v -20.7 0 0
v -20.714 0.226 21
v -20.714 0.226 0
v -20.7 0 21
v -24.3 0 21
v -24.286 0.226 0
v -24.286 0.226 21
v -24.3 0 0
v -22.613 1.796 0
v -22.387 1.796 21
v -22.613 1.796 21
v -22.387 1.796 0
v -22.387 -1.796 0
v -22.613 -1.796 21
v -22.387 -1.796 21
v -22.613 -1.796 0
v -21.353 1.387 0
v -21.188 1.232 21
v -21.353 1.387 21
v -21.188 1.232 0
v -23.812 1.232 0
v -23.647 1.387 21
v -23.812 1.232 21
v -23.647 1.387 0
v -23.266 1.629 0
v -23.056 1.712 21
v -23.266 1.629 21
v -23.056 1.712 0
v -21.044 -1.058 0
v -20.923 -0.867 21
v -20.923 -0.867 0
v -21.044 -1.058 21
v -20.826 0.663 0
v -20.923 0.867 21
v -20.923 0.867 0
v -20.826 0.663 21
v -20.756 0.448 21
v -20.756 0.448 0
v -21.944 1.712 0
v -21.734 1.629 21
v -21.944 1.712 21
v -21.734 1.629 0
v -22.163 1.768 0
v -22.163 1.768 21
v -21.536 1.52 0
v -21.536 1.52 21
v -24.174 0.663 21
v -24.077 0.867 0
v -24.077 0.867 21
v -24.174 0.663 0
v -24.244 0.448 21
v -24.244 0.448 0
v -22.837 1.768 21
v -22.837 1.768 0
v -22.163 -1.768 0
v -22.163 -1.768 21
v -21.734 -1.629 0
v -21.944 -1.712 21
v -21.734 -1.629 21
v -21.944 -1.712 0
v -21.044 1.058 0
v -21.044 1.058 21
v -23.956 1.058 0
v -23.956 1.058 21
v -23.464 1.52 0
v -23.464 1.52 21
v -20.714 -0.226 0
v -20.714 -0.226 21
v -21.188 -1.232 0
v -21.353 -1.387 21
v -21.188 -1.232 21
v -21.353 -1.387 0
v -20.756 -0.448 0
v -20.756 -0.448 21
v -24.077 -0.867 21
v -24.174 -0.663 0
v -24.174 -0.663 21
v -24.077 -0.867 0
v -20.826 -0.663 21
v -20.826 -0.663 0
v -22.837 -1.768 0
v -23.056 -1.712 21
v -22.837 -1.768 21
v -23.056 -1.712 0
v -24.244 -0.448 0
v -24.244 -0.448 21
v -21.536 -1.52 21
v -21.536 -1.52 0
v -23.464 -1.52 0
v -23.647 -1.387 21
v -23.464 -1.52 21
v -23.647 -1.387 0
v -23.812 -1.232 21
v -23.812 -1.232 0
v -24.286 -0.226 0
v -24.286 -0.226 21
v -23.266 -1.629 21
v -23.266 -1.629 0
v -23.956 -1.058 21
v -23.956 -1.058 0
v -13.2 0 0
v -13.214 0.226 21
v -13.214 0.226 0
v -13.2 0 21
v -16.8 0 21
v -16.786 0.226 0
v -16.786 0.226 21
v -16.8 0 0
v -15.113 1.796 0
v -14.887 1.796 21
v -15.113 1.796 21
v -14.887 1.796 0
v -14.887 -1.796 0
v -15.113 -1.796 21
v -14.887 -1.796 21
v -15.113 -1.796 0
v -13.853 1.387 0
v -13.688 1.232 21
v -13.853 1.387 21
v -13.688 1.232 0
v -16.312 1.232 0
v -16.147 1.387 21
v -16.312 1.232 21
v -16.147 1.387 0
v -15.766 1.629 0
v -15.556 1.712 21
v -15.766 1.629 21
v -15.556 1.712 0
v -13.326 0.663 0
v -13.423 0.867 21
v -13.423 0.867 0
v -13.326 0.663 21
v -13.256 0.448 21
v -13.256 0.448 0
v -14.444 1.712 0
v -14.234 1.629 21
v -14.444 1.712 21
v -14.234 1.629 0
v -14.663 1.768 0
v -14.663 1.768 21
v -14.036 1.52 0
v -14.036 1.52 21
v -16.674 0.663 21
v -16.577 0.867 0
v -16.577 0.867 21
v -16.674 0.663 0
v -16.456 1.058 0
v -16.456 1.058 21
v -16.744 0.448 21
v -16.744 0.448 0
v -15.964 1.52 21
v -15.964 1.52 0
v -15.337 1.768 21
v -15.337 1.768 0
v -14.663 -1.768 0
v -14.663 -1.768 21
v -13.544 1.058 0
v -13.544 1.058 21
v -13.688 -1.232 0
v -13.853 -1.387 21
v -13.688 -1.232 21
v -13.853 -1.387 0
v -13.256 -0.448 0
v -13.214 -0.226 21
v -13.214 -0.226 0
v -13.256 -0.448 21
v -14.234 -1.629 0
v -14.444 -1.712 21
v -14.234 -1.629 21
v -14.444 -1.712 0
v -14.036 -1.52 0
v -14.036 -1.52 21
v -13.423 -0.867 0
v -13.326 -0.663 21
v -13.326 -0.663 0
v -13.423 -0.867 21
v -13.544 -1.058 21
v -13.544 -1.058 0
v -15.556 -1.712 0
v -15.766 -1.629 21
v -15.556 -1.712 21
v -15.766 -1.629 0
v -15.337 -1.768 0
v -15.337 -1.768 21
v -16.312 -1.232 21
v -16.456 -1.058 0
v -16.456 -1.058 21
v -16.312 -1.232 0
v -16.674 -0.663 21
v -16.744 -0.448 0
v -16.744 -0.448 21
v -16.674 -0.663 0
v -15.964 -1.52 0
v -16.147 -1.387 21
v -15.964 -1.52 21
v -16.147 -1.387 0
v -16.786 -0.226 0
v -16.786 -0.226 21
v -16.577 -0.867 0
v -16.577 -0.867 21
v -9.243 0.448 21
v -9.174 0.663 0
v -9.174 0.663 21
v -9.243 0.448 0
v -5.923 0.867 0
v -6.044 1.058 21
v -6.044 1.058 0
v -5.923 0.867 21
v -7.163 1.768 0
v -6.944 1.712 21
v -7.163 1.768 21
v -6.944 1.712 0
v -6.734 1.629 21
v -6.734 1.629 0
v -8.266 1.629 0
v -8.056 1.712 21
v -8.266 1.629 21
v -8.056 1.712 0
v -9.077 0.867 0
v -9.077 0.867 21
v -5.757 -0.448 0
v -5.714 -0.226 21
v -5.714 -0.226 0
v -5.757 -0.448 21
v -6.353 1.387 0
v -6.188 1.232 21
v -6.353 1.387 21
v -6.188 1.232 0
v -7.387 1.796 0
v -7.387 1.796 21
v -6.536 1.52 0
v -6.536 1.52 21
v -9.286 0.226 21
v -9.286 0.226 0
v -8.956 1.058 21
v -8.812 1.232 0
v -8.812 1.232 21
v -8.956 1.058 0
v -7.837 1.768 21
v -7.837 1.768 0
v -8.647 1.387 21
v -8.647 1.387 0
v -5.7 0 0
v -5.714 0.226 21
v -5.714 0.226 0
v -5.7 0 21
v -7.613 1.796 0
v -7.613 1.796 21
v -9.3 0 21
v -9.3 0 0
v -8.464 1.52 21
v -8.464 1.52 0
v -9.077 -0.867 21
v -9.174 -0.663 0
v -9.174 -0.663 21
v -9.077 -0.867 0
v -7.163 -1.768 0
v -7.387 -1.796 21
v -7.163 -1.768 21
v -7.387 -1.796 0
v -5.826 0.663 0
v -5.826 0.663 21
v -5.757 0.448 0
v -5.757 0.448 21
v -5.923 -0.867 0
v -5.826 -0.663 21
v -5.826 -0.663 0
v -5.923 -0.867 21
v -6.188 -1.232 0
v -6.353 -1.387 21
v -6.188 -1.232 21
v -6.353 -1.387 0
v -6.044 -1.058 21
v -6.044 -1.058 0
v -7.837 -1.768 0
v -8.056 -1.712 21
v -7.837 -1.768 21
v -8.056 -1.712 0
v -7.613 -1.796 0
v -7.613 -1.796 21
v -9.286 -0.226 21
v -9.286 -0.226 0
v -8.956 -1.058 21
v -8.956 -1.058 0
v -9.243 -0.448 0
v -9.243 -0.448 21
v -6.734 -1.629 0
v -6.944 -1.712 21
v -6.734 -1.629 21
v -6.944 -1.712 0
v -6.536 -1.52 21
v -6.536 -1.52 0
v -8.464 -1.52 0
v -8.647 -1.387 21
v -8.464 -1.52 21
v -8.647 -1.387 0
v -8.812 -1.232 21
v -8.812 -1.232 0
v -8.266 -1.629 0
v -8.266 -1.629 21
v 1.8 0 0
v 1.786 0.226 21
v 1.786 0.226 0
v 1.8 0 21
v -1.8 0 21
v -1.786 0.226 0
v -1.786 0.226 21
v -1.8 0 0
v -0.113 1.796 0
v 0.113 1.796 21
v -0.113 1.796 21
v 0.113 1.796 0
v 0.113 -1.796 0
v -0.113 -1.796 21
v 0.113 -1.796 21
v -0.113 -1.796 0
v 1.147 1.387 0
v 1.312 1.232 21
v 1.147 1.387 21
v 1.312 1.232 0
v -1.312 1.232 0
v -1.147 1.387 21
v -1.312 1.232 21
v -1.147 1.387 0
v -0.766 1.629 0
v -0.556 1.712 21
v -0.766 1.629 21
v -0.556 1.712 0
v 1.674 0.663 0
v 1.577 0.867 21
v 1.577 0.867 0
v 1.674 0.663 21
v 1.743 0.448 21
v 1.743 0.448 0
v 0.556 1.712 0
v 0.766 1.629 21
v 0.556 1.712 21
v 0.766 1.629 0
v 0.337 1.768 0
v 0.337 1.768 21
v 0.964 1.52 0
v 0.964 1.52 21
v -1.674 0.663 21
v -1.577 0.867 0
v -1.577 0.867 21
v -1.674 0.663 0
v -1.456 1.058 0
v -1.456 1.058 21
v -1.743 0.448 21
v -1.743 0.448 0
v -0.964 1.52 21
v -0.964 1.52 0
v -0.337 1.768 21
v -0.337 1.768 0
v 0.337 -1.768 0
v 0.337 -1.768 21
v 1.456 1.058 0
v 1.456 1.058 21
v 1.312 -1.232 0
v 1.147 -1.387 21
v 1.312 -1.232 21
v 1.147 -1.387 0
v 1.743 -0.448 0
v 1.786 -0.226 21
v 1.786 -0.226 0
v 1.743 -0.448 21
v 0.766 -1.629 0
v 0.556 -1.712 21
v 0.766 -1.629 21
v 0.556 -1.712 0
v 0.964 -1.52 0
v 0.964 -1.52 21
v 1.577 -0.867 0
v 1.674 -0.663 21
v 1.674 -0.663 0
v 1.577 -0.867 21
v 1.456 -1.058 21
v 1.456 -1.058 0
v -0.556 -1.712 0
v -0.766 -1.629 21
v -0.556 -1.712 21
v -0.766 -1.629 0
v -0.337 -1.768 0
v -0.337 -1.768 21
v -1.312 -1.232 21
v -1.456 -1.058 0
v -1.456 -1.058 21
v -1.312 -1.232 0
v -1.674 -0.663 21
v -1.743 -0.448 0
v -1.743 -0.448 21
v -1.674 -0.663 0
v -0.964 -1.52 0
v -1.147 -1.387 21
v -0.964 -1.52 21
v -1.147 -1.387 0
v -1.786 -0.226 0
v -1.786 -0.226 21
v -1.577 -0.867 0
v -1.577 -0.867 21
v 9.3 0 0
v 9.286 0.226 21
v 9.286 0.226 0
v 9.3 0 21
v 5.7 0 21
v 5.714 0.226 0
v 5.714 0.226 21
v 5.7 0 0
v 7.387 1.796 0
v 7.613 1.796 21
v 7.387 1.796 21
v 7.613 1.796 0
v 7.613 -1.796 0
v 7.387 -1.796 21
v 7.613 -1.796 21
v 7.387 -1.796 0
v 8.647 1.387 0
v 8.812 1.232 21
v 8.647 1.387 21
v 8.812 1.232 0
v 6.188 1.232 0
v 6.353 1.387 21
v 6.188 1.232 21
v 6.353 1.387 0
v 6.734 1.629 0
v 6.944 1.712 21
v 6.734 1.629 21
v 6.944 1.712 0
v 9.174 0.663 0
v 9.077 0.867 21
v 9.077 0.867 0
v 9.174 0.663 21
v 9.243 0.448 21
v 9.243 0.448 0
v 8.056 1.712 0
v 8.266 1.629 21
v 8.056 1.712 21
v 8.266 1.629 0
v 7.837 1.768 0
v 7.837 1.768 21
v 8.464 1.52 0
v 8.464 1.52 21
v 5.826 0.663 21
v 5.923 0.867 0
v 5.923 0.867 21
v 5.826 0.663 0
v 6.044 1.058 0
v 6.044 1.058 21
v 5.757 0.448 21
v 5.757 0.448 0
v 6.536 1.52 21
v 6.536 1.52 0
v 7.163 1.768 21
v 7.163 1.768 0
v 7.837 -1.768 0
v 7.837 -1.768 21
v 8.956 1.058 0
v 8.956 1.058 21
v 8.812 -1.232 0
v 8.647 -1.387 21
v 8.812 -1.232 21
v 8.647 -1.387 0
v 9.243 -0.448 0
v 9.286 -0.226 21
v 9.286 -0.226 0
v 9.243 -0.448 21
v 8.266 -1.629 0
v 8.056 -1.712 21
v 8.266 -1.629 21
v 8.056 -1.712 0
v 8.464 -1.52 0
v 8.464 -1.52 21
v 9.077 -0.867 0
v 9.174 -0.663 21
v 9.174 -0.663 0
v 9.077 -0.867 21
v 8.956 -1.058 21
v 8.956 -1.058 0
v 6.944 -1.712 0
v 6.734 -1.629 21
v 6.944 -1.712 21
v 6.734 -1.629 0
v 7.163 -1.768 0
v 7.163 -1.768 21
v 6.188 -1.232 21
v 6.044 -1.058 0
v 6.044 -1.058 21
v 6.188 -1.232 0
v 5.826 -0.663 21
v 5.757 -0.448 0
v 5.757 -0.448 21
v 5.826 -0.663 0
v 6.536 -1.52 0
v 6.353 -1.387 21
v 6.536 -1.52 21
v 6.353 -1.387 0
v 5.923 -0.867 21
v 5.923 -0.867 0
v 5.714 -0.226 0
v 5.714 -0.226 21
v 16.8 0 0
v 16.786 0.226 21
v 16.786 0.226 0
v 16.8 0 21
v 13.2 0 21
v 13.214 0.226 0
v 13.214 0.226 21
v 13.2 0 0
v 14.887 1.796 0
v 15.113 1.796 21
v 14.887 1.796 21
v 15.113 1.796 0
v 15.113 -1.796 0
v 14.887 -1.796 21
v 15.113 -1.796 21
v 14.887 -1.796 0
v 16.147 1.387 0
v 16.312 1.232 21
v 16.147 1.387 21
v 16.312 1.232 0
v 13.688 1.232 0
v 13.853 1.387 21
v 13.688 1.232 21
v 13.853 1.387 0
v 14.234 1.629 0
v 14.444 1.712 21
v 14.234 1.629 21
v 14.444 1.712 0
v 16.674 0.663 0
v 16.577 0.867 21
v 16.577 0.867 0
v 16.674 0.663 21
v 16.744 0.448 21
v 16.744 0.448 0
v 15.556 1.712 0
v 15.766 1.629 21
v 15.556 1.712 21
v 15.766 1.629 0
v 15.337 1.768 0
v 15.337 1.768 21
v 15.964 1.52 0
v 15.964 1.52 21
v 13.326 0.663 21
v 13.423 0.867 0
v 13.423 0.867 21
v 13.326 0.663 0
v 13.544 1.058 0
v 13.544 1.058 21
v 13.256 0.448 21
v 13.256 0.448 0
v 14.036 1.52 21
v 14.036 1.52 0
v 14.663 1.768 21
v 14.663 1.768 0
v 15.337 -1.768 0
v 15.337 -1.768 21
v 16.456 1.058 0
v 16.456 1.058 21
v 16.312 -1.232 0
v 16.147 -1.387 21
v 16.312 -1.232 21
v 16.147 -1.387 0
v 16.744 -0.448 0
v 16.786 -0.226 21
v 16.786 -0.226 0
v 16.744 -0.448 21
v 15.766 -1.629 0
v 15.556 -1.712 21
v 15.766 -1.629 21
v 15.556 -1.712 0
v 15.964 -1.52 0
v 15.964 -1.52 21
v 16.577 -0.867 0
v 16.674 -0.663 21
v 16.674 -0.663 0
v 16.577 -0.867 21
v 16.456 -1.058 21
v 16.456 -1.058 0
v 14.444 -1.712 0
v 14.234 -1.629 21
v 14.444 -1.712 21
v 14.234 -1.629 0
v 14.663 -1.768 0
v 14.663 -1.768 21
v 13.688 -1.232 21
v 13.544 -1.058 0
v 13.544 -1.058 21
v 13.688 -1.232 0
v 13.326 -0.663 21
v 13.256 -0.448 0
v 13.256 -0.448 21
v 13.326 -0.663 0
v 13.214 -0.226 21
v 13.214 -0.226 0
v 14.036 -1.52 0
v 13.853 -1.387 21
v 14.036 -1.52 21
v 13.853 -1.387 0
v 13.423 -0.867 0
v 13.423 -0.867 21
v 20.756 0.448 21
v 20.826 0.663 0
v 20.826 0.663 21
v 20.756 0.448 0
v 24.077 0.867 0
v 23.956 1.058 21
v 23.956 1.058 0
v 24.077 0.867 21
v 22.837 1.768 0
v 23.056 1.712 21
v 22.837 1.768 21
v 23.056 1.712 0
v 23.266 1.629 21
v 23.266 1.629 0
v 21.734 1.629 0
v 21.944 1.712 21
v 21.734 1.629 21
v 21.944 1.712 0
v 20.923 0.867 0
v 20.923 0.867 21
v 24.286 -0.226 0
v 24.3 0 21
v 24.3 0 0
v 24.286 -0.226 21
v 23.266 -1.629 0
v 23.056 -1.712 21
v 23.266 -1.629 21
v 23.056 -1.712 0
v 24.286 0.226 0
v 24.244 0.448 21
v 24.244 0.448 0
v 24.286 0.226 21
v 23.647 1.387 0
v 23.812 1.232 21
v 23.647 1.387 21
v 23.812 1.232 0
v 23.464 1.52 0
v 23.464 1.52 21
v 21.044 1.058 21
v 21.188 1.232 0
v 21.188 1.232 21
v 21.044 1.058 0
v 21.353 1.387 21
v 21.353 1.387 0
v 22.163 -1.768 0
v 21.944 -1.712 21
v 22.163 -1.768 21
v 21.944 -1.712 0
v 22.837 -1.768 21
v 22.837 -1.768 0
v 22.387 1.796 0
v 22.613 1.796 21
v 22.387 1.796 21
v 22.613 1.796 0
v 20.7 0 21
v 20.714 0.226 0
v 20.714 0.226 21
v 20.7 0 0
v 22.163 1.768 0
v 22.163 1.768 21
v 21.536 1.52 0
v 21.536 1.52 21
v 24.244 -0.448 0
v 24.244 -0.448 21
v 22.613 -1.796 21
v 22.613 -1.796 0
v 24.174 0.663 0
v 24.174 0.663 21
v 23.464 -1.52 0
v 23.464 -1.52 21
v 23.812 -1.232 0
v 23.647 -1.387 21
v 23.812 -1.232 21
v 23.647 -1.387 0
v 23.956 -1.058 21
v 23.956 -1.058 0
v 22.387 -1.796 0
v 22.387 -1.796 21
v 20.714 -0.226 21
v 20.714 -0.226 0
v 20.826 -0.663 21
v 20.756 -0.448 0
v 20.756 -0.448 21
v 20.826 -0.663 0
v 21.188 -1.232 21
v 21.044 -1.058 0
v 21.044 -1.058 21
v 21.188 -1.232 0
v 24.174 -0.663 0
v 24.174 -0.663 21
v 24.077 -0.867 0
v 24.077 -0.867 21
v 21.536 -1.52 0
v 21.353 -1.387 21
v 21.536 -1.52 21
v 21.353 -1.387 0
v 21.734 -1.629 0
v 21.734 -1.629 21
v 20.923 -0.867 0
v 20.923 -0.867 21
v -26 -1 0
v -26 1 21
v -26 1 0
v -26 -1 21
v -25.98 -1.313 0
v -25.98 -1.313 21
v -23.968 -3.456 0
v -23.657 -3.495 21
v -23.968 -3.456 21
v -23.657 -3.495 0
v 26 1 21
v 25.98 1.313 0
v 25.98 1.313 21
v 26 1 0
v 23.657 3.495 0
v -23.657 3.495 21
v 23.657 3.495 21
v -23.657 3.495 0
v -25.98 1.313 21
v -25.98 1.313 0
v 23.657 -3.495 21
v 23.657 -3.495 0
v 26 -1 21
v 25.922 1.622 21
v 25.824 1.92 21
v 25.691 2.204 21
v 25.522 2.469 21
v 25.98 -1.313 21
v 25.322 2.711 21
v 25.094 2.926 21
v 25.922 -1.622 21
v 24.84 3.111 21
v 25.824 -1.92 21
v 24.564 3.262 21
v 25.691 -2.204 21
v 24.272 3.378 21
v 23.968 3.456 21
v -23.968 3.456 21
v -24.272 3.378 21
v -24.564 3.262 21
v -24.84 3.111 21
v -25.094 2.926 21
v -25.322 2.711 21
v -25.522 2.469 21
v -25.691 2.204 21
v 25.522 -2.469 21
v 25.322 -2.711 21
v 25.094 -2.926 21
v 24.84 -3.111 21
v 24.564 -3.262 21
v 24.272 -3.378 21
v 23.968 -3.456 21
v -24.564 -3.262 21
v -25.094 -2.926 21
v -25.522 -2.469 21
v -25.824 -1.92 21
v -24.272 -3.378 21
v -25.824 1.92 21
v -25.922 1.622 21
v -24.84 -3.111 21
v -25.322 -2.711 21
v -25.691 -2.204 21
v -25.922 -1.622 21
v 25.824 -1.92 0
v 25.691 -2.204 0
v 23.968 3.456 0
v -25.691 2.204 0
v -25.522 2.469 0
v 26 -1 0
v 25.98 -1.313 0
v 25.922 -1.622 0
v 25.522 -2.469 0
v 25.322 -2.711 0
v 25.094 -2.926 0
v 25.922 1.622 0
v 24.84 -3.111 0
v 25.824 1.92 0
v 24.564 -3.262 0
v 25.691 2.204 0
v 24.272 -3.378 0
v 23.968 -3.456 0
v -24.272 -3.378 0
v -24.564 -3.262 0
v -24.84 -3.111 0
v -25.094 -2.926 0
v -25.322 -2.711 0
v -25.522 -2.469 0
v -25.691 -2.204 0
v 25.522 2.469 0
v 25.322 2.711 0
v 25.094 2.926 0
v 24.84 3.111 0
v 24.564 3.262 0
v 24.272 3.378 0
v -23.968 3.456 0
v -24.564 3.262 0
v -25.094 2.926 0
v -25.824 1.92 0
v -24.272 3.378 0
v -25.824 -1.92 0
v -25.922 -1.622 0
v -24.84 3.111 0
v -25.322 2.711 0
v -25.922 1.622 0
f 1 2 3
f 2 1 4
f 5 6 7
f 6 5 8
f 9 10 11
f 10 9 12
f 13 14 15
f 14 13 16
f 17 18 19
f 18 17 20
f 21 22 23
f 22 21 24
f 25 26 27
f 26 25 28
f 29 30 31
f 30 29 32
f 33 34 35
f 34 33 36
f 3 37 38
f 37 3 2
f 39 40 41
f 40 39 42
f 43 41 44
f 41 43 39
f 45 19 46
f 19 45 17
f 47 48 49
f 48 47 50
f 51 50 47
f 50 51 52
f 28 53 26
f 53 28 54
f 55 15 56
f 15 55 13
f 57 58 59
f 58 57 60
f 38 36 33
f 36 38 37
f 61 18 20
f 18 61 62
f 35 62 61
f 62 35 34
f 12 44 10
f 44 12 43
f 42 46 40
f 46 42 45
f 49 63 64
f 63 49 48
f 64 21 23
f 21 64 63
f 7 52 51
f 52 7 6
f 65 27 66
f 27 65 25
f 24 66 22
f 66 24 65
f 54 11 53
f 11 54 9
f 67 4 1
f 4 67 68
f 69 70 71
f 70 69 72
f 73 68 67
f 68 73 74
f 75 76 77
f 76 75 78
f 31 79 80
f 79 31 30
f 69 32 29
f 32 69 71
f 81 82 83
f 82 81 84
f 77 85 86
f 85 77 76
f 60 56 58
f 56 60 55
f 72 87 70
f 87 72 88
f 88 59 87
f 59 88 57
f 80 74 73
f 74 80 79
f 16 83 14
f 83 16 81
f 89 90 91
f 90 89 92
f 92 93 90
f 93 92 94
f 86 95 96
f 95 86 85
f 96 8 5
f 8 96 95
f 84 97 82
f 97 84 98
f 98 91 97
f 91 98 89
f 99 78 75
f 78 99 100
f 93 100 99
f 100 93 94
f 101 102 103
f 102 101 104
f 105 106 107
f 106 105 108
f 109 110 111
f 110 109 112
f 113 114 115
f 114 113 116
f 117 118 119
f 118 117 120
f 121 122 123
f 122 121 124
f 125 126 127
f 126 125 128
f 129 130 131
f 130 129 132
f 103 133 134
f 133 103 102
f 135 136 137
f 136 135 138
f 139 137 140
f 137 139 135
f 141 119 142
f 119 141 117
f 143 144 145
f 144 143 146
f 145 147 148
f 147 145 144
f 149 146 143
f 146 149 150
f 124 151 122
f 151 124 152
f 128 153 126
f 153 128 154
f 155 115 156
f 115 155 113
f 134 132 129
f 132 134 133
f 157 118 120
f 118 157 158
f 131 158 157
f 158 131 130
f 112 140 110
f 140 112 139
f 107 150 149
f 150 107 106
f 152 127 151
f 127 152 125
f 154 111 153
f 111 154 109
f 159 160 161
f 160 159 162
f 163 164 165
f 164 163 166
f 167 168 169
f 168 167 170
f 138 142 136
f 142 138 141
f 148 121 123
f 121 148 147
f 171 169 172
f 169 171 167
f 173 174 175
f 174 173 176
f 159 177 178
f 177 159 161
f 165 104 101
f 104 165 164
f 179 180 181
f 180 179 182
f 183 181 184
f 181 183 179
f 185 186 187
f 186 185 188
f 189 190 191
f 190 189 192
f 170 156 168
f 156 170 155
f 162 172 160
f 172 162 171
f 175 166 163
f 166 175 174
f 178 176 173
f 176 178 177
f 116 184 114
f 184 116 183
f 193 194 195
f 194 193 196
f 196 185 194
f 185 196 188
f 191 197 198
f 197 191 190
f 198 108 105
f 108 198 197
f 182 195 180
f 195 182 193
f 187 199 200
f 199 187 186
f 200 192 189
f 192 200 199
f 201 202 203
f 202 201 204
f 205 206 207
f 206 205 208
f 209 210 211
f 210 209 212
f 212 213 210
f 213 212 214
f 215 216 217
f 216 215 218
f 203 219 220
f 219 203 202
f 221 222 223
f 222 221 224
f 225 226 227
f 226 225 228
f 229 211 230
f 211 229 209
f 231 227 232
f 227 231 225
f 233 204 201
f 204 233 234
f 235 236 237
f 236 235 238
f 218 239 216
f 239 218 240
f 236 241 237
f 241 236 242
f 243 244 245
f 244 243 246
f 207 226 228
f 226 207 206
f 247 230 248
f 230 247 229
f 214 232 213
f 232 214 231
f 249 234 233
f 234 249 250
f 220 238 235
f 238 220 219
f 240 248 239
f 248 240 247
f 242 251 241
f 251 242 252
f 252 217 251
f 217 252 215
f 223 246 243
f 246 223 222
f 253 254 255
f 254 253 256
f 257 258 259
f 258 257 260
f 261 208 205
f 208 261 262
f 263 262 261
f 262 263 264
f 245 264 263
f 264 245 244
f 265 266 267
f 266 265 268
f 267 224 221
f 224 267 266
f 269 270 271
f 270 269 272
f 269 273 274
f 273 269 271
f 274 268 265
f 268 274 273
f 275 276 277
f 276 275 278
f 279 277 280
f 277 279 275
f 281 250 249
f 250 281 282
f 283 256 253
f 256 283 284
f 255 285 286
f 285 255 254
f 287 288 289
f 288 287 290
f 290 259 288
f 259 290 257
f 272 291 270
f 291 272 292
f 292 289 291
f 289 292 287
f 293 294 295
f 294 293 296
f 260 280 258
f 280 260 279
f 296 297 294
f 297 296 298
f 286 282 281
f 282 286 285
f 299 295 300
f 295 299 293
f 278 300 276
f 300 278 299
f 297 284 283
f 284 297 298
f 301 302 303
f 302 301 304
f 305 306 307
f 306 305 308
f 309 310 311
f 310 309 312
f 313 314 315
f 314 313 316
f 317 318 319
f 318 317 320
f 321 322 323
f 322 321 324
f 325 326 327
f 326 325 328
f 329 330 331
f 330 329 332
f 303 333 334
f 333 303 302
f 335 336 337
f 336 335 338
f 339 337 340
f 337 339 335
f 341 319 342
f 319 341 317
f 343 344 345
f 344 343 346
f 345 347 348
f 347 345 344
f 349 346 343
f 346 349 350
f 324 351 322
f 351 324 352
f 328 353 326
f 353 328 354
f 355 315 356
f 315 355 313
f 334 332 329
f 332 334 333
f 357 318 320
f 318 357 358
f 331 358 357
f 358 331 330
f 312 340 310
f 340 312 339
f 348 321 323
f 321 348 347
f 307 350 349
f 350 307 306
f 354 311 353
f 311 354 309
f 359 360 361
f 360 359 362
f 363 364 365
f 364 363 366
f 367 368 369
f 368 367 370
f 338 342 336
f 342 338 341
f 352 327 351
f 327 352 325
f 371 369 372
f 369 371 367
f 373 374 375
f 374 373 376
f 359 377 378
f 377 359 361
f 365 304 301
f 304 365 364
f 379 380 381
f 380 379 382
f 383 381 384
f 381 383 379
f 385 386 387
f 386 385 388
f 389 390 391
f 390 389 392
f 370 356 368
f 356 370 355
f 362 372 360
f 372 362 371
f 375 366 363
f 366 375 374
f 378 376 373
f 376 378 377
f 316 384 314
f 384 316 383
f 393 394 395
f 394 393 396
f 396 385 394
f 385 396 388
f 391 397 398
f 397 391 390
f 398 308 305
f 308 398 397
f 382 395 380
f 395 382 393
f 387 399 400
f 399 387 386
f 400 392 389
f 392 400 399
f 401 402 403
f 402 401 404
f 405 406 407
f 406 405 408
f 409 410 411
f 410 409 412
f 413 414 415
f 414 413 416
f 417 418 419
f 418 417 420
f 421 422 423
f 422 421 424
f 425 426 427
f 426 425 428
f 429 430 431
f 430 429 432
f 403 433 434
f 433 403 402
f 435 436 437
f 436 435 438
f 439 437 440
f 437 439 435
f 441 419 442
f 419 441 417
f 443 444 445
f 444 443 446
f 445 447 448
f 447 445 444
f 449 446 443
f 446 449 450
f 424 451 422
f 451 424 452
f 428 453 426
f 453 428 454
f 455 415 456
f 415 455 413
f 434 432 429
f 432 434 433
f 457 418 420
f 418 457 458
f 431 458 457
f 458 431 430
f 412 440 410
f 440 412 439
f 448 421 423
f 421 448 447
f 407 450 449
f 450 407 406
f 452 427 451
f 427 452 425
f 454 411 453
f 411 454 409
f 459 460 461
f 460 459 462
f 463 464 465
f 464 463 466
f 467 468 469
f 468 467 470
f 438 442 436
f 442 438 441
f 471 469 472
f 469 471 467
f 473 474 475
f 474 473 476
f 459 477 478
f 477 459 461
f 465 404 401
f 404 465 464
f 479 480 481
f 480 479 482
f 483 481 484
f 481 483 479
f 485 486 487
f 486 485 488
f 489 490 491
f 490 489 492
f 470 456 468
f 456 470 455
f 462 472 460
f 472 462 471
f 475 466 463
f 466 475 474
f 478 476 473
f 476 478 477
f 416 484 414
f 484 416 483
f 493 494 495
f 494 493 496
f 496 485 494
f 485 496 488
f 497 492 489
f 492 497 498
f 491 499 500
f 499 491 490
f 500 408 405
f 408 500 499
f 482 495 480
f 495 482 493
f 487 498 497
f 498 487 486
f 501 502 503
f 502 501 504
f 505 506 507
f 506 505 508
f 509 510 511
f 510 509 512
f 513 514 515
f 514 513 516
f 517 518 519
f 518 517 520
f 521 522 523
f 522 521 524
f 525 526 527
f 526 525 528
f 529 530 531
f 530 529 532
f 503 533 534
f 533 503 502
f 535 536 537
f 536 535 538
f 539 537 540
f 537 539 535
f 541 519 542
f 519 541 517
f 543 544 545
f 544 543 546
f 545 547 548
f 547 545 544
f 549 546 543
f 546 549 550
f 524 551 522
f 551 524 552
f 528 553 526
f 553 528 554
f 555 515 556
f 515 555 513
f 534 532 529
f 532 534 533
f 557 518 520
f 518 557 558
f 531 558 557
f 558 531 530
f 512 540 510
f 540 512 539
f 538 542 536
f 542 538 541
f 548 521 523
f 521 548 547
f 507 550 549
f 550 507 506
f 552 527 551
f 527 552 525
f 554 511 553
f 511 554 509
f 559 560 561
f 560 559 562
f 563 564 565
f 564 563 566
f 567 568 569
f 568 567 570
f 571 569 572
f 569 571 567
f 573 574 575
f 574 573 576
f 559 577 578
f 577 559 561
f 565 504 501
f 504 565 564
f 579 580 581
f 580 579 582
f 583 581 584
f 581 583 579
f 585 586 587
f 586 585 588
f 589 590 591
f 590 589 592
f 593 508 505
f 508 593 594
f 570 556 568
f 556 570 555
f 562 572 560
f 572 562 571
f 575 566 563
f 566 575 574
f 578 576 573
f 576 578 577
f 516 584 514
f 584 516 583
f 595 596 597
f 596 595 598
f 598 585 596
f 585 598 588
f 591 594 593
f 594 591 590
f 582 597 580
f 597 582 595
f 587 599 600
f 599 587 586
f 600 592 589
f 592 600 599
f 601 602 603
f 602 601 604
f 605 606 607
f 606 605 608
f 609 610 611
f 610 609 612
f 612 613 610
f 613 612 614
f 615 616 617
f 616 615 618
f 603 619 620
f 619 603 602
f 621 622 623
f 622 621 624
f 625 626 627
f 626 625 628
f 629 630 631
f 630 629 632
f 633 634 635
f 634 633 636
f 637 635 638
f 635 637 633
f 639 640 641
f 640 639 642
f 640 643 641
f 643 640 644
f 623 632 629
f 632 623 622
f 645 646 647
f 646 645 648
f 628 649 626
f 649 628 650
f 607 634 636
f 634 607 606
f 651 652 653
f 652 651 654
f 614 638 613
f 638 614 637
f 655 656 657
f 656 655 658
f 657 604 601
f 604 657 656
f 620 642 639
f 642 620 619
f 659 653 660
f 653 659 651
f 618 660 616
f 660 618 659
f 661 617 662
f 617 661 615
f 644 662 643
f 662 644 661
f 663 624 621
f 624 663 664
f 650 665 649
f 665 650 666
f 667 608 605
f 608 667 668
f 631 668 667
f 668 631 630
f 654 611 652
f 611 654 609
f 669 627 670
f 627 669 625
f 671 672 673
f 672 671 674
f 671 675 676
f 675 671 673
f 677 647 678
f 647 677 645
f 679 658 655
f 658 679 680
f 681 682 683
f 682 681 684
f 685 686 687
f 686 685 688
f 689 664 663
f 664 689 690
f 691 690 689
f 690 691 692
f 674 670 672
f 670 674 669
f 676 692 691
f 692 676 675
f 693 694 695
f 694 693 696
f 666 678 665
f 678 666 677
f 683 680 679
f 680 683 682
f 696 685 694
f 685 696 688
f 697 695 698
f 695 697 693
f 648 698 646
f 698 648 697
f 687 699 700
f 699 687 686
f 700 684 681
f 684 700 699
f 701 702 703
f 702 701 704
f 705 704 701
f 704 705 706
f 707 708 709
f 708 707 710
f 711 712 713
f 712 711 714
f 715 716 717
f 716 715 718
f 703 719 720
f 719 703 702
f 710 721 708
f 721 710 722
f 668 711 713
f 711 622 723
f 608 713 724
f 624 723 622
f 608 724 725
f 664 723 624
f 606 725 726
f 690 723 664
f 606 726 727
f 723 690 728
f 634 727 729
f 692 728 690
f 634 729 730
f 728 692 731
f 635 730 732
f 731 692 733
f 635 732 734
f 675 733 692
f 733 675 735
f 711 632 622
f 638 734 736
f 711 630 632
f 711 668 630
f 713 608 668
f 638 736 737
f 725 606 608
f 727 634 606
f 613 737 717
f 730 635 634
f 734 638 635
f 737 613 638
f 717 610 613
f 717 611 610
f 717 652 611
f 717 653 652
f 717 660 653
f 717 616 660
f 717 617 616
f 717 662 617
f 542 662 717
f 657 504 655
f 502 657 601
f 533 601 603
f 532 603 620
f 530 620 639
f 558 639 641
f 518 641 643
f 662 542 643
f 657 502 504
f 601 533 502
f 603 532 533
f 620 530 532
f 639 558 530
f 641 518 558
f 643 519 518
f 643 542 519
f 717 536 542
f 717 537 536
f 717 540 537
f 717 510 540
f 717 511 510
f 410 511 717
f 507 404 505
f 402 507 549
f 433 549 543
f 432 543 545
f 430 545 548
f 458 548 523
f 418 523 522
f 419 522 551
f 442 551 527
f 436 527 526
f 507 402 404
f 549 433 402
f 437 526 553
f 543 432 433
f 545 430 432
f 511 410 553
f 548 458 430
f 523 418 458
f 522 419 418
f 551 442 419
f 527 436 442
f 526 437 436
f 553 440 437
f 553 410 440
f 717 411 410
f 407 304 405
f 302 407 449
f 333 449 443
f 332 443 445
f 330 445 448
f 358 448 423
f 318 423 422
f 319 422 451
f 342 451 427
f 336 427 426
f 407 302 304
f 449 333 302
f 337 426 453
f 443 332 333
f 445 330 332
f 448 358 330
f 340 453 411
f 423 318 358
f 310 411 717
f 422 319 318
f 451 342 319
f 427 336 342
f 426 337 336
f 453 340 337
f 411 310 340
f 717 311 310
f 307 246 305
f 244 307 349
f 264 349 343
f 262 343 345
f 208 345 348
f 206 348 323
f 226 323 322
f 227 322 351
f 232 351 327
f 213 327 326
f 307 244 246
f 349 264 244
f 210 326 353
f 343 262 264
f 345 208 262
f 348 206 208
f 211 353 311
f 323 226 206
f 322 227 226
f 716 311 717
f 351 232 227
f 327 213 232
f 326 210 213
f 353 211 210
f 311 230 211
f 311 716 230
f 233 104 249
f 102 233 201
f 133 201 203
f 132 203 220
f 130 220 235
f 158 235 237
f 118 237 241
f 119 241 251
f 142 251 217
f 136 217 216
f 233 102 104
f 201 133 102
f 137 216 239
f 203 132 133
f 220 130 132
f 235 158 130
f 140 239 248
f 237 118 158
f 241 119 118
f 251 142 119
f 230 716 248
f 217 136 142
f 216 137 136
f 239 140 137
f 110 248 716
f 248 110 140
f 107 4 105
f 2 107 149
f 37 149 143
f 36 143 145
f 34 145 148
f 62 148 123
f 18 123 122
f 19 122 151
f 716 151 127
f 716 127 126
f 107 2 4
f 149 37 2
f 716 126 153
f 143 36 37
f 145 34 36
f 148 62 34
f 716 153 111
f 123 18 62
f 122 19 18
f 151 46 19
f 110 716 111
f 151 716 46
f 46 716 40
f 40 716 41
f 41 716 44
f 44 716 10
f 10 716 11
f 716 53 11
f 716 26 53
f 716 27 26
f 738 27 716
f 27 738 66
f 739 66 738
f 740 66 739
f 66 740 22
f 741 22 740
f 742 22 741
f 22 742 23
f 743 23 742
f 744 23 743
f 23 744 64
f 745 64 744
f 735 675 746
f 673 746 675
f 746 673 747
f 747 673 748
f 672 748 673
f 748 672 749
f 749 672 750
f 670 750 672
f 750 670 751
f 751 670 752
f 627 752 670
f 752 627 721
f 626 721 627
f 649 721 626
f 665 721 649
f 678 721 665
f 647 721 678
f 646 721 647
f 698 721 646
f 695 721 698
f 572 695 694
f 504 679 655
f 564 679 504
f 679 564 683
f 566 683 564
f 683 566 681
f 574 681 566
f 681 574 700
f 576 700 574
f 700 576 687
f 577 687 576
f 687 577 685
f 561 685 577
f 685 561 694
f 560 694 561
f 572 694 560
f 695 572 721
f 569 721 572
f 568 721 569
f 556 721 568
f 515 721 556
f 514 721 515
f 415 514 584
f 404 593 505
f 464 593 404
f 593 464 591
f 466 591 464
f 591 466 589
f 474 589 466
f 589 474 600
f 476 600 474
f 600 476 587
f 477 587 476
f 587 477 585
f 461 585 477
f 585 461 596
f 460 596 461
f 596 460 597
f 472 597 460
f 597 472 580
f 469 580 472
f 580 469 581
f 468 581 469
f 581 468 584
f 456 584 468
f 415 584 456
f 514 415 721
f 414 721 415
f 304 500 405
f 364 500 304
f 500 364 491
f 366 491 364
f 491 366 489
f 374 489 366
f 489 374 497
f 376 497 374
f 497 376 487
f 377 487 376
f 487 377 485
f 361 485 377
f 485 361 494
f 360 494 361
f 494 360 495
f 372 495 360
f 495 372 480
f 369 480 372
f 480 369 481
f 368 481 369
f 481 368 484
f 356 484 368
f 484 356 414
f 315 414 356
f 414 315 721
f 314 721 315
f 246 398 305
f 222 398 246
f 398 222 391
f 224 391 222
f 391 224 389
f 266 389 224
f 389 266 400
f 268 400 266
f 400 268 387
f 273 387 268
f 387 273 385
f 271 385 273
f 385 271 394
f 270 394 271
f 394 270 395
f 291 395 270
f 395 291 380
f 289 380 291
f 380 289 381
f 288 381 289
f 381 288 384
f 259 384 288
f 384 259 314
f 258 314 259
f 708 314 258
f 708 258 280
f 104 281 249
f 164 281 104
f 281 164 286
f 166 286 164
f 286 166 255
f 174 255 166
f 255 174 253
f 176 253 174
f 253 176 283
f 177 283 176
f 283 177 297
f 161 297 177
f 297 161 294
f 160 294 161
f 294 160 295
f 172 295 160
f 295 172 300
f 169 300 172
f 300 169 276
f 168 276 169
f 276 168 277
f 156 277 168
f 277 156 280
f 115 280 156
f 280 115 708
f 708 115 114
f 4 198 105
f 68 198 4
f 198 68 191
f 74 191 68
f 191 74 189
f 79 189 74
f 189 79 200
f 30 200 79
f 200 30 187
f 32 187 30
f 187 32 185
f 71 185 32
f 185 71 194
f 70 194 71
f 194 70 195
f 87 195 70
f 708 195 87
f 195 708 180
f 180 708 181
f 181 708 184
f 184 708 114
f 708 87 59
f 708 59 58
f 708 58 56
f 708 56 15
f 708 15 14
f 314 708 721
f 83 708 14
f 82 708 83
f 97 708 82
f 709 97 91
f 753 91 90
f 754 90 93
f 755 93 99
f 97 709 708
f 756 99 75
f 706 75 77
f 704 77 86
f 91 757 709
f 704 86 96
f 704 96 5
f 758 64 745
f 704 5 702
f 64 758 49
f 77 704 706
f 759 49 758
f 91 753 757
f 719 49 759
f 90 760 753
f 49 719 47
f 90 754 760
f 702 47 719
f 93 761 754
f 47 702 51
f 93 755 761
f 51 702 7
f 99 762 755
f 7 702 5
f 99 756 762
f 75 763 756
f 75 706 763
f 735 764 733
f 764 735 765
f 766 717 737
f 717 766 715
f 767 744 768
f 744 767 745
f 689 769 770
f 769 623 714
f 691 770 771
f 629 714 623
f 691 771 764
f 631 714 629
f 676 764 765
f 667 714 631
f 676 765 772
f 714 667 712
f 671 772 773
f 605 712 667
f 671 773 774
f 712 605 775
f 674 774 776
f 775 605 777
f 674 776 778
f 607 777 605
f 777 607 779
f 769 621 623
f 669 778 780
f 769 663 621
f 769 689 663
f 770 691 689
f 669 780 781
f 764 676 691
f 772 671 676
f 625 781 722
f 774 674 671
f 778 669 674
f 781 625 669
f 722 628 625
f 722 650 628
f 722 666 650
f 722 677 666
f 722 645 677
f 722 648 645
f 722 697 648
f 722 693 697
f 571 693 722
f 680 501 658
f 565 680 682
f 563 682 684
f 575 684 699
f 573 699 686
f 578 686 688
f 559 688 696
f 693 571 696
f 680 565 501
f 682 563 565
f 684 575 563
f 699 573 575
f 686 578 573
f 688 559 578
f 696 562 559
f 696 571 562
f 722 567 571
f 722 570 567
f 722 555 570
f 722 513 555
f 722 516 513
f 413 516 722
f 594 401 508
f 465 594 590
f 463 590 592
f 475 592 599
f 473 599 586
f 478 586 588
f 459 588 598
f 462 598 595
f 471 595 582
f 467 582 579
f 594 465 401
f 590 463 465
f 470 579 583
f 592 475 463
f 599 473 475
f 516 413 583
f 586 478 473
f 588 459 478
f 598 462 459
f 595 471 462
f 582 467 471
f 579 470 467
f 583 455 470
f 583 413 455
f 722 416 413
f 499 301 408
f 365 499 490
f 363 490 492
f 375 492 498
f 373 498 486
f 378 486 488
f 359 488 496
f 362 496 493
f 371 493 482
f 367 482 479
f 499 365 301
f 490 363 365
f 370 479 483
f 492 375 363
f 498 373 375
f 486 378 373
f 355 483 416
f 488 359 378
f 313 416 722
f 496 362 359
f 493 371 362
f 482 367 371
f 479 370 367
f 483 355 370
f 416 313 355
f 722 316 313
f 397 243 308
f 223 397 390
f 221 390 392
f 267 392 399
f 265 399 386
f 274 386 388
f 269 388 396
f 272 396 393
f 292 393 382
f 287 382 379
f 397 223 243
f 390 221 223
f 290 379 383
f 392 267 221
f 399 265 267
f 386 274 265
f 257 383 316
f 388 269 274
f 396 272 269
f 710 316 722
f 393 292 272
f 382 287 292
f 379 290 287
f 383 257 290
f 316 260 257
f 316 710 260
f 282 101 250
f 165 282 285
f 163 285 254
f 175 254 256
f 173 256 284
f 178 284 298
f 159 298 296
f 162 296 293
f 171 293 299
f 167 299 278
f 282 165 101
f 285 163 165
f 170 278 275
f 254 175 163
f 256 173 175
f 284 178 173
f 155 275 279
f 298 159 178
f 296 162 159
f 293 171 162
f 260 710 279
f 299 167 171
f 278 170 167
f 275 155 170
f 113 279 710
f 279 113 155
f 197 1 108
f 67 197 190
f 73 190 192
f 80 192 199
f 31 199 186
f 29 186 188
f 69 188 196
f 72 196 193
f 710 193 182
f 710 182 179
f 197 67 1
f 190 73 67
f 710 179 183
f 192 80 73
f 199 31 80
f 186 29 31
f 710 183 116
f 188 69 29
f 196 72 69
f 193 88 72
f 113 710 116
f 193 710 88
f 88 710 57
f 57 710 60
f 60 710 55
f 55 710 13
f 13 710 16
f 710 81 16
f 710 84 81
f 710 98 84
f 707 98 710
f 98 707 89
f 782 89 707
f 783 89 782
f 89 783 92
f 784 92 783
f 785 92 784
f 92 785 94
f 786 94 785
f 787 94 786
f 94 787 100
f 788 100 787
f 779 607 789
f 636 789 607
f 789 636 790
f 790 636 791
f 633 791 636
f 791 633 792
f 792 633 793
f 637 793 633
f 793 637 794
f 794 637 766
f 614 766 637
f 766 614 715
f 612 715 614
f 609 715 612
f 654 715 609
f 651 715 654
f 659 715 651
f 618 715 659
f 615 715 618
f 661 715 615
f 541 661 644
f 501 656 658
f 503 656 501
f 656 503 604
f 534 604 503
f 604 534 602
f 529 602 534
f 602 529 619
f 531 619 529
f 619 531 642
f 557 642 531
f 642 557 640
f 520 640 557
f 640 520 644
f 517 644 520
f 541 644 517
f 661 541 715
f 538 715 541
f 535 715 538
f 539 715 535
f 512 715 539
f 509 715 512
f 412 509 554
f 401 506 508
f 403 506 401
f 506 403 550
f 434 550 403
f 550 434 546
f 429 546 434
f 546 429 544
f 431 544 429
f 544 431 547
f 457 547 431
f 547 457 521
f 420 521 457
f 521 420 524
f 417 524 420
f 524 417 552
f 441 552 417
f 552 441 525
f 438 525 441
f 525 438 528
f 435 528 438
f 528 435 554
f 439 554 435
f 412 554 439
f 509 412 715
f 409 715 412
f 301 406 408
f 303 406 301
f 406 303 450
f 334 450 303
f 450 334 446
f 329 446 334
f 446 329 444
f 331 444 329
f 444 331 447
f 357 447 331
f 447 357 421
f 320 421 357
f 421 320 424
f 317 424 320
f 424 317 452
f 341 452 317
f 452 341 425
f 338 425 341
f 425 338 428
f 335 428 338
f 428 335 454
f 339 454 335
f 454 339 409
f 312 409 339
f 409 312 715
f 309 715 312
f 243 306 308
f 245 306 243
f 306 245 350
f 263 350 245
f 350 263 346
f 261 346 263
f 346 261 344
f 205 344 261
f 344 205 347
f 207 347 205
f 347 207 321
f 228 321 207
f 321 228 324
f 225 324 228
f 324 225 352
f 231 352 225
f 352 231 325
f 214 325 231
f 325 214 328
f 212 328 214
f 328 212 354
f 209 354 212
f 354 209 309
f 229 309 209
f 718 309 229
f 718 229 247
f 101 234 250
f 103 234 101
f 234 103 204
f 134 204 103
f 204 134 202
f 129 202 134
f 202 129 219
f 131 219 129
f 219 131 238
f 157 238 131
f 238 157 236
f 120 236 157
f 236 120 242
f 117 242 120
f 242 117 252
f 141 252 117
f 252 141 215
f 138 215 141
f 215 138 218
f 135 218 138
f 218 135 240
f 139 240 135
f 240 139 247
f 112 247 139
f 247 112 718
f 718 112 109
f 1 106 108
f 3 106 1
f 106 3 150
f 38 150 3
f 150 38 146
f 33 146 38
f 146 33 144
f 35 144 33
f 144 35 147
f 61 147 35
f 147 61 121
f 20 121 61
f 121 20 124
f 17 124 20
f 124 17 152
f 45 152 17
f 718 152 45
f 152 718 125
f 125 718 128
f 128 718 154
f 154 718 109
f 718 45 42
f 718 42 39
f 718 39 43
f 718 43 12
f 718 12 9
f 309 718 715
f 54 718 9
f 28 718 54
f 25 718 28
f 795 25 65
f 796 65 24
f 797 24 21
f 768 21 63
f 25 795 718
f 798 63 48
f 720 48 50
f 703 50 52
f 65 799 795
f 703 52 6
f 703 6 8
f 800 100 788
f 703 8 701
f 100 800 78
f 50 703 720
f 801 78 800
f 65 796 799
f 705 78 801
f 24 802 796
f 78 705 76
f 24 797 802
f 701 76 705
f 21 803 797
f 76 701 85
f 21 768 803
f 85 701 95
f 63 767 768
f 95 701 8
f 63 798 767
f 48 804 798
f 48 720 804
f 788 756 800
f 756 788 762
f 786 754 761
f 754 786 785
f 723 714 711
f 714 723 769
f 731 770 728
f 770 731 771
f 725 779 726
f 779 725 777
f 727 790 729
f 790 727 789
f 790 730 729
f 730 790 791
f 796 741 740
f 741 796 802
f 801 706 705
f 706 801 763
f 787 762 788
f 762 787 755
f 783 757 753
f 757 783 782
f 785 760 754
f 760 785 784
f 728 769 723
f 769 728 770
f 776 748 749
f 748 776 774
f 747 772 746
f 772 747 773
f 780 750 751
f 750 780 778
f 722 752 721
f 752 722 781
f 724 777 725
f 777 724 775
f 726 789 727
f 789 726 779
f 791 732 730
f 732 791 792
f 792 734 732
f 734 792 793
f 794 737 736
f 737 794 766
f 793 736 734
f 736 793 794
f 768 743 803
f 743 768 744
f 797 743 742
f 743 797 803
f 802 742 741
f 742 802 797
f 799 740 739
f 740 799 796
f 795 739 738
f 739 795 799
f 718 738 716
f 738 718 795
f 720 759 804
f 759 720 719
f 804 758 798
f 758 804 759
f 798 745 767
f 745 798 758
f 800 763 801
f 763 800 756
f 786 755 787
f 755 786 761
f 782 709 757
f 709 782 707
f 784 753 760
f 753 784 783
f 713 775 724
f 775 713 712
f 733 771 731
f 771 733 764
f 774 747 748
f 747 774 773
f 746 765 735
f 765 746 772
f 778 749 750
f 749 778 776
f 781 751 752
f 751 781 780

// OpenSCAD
$fn = 50;


difference() {
	union() {
		translate(v = [0, 0, 0]) {
			rotate(a = [0, 0, 0]) {
				hull() {
					translate(v = [-23.5000000000, 1.0000000000, 0]) {
						rotate(a = [0, 0, 0]) {
							translate(v = [0, 0, 0]) {
								rotate(a = [0, 0, 0]) {
									cylinder(h = 21, r = 2.5000000000);
								}
							}
						}
					}
					translate(v = [23.5000000000, 1.0000000000, 0]) {
						rotate(a = [0, 0, 0]) {
							translate(v = [0, 0, 0]) {
								rotate(a = [0, 0, 0]) {
									cylinder(h = 21, r = 2.5000000000);
								}
							}
						}
					}
					translate(v = [-23.5000000000, -1.0000000000, 0]) {
						rotate(a = [0, 0, 0]) {
							translate(v = [0, 0, 0]) {
								rotate(a = [0, 0, 0]) {
									cylinder(h = 21, r = 2.5000000000);
								}
							}
						}
					}
					translate(v = [23.5000000000, -1.0000000000, 0]) {
						rotate(a = [0, 0, 0]) {
							translate(v = [0, 0, 0]) {
								rotate(a = [0, 0, 0]) {
									cylinder(h = 21, r = 2.5000000000);
								}
							}
						}
					}
				}
			}
		}
	}
	union() {
		translate(v = [-22.5000000000, 0.0000000000, 0]) {
			rotate(a = [0, 0, 0]) {
				translate(v = [0, 0, -50]) {
					rotate(a = [0, 0, 0]) {
						cylinder(h = 100, r = 1.8000000000);
					}
				}
			}
		}
		translate(v = [-15.0000000000, 0.0000000000, 0]) {
			rotate(a = [0, 0, 0]) {
				translate(v = [0, 0, -50]) {
					rotate(a = [0, 0, 0]) {
						cylinder(h = 100, r = 1.8000000000);
					}
				}
			}
		}
		translate(v = [-7.5000000000, 0.0000000000, 0]) {
			rotate(a = [0, 0, 0]) {
				translate(v = [0, 0, -50]) {
					rotate(a = [0, 0, 0]) {
						cylinder(h = 100, r = 1.8000000000);
					}
				}
			}
		}
		translate(v = [0.0000000000, 0.0000000000, 0]) {
			rotate(a = [0, 0, 0]) {
				translate(v = [0, 0, -50]) {
					rotate(a = [0, 0, 0]) {
						cylinder(h = 100, r = 1.8000000000);
					}
				}
			}
		}
		translate(v = [7.5000000000, 0.0000000000, 0]) {
			rotate(a = [0, 0, 0]) {
				translate(v = [0, 0, -50]) {
					rotate(a = [0, 0, 0]) {
						cylinder(h = 100, r = 1.8000000000);
					}
				}
			}
		}
		translate(v = [15.0000000000, 0.0000000000, 0]) {
			rotate(a = [0, 0, 0]) {
				translate(v = [0, 0, -50]) {
					rotate(a = [0, 0, 0]) {
						cylinder(h = 100, r = 1.8000000000);
					}
				}
			}
		}
		translate(v = [22.5000000000, 0.0000000000, 0]) {
			rotate(a = [0, 0, 0]) {
				translate(v = [0, 0, -50]) {
					rotate(a = [0, 0, 0]) {
						cylinder(h = 100, r = 1.8000000000);
					}
				}
			}
		}
	}
}
